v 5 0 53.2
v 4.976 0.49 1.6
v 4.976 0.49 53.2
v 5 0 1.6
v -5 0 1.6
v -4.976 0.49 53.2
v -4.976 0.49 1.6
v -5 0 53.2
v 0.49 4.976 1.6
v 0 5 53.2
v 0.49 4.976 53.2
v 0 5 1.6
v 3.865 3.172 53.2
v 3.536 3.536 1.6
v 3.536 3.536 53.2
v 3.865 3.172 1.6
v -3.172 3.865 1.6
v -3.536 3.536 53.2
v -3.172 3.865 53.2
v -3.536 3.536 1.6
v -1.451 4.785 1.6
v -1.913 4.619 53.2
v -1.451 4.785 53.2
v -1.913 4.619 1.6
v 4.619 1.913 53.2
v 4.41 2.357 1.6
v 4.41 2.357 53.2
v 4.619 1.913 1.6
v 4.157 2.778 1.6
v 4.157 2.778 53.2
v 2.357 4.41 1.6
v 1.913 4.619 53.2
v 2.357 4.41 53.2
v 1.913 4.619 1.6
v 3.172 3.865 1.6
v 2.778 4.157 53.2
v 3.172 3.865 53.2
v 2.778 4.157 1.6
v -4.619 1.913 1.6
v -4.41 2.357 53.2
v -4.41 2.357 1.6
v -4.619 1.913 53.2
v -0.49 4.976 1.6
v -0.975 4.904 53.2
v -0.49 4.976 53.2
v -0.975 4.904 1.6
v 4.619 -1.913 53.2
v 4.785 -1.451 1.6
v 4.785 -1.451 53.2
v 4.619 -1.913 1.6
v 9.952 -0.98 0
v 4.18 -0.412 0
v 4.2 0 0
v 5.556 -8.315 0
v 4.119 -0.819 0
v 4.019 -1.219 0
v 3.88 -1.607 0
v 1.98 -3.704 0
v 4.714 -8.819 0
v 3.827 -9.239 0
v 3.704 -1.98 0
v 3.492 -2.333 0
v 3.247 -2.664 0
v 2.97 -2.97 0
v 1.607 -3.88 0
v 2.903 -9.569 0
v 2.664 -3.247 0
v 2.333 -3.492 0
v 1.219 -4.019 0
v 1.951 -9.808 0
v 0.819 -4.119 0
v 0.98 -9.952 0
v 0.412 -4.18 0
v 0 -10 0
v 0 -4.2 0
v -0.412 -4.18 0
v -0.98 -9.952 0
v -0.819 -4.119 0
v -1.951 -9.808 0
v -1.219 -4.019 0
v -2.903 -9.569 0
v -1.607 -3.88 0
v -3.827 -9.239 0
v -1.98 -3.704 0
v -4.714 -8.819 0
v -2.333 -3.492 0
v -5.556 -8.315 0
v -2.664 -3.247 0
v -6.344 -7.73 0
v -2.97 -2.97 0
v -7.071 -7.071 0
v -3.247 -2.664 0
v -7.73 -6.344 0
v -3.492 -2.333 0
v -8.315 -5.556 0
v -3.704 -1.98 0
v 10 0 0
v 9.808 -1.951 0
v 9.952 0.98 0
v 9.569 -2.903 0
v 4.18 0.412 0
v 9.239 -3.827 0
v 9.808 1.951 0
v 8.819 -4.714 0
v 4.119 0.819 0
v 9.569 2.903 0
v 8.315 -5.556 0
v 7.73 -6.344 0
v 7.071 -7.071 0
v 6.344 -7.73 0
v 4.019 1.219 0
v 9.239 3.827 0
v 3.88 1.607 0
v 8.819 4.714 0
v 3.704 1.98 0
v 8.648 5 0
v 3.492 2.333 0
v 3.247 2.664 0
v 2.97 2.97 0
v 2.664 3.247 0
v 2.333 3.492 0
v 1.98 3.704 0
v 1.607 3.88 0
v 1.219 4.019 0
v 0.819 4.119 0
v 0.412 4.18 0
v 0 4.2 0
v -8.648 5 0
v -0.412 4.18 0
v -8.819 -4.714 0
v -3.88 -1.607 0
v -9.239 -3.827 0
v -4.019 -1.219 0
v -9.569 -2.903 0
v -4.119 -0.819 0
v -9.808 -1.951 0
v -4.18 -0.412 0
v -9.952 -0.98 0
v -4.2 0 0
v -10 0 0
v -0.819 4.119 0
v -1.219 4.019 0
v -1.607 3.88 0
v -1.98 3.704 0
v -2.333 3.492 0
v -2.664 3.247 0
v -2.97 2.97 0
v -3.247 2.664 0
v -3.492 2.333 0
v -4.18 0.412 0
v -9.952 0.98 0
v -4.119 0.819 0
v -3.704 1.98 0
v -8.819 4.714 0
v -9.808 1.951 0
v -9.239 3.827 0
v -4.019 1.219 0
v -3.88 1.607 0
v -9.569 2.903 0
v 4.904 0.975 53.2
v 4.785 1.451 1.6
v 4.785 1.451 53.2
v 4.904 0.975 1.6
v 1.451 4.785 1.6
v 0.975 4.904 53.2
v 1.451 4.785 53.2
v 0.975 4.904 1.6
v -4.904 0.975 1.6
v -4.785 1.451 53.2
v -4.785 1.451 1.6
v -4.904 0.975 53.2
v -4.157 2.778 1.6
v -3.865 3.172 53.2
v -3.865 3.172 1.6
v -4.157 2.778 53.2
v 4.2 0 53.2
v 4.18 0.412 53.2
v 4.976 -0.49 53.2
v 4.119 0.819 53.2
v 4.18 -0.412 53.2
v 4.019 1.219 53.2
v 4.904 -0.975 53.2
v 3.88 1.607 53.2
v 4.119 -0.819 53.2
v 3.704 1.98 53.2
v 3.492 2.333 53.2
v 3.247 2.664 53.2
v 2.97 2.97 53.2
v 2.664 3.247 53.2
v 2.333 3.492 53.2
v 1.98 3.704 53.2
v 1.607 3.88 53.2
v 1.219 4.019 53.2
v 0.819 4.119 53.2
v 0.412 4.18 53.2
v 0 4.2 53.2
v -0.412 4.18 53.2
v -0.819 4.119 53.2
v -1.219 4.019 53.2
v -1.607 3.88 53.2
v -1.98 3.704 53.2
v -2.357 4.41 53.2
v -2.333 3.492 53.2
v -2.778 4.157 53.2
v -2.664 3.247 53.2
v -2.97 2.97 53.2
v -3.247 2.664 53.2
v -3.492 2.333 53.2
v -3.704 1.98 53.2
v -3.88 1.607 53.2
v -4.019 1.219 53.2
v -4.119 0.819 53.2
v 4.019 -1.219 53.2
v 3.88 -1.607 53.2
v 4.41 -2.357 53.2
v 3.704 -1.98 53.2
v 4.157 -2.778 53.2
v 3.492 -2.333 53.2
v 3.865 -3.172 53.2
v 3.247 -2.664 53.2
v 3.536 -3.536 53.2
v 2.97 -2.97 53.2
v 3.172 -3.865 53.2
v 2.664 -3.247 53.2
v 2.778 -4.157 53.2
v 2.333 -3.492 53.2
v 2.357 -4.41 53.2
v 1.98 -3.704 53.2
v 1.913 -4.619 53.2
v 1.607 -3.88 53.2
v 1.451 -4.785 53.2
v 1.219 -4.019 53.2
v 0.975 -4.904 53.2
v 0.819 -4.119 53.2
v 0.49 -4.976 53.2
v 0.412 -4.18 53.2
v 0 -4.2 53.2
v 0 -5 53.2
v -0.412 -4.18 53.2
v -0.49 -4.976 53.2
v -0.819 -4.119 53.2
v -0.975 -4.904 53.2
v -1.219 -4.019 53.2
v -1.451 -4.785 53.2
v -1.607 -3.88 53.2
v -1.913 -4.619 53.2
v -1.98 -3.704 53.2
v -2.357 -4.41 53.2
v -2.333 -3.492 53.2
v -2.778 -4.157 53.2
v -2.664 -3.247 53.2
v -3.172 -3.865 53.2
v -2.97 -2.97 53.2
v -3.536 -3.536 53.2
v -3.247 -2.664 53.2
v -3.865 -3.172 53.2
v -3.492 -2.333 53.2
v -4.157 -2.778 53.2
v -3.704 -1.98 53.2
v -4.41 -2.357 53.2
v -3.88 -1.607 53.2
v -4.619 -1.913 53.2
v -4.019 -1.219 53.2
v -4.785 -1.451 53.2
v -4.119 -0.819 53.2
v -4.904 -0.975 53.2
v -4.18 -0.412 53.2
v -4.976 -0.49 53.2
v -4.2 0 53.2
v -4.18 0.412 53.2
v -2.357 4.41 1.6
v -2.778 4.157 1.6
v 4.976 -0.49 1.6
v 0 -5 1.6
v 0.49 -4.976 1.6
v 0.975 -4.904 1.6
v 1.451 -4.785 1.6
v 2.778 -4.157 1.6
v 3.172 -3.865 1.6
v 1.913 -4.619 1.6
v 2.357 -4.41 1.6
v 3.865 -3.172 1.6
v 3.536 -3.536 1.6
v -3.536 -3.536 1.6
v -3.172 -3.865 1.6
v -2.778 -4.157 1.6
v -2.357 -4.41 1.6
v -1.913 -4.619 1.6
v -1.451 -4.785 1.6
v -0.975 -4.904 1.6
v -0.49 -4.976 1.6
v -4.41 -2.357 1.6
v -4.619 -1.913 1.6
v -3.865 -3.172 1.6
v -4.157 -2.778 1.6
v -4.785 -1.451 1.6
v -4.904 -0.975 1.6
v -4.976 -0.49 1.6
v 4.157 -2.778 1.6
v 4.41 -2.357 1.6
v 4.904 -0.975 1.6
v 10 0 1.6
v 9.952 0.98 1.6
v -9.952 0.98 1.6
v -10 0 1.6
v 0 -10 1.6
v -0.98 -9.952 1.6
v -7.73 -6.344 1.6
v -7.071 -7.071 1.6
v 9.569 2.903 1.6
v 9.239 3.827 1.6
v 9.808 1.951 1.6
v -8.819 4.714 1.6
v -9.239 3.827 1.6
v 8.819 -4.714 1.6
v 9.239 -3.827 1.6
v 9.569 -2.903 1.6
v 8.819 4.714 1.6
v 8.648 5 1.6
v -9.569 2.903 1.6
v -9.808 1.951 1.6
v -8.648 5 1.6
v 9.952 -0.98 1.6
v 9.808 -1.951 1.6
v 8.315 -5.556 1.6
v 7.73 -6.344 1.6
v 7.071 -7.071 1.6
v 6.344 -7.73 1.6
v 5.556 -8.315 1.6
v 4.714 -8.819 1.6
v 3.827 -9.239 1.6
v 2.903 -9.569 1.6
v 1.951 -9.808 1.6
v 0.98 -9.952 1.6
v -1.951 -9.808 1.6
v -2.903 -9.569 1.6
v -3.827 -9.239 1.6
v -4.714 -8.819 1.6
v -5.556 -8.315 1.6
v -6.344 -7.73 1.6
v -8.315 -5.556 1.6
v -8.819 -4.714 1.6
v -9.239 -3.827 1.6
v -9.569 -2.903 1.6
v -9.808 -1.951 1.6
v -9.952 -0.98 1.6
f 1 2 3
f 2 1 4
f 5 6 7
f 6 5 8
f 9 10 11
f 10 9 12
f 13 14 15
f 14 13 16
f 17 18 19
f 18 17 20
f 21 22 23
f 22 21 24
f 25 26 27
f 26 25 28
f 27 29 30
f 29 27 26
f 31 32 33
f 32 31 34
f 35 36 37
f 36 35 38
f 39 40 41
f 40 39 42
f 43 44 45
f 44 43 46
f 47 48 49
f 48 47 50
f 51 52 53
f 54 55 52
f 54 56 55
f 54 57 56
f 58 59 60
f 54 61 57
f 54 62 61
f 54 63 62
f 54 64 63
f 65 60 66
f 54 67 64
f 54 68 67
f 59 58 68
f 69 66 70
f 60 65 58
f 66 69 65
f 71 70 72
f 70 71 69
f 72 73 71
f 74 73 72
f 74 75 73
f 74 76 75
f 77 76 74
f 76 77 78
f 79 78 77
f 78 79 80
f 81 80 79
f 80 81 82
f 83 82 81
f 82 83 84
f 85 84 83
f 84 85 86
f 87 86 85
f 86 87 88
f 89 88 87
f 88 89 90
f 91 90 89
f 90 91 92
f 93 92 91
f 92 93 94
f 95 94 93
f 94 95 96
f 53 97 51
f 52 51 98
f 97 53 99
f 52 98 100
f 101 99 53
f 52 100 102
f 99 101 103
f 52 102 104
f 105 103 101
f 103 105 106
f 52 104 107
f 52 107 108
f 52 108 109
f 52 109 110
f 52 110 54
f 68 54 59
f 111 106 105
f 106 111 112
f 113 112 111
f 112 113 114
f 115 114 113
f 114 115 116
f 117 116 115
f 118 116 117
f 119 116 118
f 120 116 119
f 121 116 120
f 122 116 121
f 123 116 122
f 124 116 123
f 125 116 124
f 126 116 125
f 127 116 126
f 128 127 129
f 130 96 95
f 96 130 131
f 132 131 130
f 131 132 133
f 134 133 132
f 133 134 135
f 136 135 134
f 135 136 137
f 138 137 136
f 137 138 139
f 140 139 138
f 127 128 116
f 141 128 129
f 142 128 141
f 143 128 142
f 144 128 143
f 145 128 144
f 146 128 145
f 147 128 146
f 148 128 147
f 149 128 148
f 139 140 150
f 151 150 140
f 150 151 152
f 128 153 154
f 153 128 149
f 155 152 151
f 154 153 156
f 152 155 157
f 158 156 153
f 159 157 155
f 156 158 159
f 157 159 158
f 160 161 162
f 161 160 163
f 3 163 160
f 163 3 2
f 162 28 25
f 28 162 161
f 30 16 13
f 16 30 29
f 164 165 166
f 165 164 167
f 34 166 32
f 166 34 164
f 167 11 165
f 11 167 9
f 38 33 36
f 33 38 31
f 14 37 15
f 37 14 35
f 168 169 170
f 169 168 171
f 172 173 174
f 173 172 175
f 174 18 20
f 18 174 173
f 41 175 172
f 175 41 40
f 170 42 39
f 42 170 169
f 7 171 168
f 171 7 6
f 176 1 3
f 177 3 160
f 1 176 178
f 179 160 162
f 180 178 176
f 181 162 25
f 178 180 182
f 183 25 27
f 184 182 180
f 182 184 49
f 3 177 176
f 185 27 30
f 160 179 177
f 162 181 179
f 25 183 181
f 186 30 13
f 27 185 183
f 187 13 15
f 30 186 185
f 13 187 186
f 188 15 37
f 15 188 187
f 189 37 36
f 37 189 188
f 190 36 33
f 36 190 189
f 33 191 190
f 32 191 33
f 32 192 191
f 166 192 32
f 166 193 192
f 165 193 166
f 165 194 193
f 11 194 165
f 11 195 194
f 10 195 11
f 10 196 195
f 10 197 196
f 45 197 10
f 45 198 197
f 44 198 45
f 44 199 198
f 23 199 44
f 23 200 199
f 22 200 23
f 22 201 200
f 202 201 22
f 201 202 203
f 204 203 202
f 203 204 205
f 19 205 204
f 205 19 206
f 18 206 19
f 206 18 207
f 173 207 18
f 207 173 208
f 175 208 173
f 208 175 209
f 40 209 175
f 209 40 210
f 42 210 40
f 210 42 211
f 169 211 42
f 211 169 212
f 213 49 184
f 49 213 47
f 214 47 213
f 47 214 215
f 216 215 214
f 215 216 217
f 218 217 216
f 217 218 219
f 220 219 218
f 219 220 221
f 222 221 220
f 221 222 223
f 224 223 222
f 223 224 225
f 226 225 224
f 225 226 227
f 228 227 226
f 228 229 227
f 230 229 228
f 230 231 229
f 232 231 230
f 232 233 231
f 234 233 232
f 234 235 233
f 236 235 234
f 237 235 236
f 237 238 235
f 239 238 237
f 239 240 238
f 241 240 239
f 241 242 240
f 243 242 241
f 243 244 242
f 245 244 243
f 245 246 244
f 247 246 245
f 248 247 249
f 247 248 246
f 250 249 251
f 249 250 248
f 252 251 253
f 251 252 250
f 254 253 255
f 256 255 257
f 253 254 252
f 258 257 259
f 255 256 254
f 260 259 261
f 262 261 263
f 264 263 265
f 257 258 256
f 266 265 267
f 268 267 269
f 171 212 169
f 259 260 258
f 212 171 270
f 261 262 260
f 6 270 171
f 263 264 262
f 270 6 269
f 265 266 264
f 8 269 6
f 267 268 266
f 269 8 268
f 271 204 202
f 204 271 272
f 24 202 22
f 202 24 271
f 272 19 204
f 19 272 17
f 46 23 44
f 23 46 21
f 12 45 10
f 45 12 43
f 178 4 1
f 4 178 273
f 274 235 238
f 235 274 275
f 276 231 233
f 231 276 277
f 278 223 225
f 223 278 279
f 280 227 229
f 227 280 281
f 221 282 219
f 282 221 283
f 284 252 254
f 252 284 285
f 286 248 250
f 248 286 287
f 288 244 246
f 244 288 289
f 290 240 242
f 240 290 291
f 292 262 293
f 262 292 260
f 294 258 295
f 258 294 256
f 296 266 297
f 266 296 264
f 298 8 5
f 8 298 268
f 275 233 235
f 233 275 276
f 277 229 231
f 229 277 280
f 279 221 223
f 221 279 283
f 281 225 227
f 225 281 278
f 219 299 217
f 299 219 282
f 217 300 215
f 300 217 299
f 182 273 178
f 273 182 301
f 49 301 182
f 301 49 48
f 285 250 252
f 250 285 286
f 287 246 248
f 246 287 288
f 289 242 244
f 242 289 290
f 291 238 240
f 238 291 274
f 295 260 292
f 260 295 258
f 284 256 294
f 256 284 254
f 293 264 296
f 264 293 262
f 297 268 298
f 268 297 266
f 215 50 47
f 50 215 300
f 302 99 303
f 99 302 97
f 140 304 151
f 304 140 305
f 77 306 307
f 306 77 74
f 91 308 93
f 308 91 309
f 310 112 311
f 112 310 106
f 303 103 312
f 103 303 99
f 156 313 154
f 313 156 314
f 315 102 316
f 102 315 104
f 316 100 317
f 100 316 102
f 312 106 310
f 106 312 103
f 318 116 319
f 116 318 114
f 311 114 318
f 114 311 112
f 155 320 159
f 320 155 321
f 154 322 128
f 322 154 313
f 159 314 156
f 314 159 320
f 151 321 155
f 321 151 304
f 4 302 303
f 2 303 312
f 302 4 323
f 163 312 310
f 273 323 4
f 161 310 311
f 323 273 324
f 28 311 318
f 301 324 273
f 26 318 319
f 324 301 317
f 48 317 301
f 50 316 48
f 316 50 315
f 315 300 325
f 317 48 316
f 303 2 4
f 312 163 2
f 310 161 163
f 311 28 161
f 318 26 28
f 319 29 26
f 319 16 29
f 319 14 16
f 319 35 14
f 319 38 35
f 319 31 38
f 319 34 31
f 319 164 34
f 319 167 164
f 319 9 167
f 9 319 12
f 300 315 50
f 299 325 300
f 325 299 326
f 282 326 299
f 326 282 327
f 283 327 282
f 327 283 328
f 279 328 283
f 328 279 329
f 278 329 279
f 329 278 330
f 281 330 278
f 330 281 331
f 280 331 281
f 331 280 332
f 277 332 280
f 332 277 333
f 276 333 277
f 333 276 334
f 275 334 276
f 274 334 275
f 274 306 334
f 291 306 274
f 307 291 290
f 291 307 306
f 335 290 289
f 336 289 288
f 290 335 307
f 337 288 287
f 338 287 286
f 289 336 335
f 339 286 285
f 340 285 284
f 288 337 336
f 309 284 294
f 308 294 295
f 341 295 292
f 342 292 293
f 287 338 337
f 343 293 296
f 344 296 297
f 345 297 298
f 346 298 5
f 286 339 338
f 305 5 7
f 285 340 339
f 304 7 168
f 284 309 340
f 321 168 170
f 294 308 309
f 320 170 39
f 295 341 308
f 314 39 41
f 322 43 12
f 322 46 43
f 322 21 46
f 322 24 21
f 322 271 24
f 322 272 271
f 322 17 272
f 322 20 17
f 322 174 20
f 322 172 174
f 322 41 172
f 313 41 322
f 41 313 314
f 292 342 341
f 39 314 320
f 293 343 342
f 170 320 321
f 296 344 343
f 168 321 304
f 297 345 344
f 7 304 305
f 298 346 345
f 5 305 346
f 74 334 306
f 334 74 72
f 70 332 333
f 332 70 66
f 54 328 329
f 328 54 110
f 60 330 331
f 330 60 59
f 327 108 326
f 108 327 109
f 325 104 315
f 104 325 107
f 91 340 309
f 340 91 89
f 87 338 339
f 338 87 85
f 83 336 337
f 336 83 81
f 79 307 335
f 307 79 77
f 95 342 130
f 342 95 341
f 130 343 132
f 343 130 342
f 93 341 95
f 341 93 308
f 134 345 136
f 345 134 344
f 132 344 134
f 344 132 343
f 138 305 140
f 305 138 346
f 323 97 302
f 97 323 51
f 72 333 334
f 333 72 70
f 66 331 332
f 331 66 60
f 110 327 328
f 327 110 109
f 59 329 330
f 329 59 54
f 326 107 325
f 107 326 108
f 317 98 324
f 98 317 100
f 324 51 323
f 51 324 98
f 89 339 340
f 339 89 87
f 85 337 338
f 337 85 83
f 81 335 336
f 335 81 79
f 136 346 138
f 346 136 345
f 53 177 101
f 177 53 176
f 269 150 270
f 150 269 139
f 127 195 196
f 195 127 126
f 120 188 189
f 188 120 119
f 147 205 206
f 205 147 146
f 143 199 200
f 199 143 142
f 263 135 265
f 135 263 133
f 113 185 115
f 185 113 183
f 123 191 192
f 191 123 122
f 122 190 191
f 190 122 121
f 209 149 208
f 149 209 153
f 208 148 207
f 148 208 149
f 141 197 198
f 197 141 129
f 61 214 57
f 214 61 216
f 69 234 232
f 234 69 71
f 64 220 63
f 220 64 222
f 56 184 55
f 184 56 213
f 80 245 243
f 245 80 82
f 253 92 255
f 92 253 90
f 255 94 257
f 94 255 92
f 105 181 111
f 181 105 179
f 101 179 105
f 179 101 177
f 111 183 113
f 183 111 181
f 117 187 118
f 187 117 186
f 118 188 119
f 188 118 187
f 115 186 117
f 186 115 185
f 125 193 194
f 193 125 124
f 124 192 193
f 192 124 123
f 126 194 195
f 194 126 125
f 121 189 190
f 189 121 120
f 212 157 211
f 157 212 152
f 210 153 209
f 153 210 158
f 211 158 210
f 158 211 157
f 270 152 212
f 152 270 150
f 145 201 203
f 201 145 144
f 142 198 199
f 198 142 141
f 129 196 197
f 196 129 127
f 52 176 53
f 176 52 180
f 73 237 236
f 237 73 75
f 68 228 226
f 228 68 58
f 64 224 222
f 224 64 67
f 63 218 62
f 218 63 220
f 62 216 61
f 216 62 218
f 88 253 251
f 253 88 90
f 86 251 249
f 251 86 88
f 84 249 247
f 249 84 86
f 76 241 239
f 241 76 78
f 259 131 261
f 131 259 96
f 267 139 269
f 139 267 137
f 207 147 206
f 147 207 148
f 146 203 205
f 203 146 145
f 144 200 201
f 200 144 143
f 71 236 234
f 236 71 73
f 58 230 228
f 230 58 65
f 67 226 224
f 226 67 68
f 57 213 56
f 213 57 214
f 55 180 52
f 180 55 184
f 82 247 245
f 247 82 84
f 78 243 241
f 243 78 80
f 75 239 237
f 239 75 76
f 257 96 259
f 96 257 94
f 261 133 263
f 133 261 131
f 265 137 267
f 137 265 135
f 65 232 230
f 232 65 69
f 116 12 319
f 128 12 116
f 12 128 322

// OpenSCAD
materialThickness = 1.6;
cutMaterialThickness = 0.8;
cutRadius = 5;
latchAdditionalRadius = 5;
cutZ = 50 + 2*materialThickness;

// Cut through ikea LACK for raspi cables
module cableHole() {
    difference() {
        union() {
            // Base cylinder
            translate([
                0,
                0,
                cutZ / 2
            ]) cylinder(
                h=cutZ,
                r=cutRadius,
                $fn=64,
                center = true
            );
            // latch
            translate([
                0,
                0,
                materialThickness / 2
            ]) cylinder(
                h=materialThickness,
                r=cutRadius + latchAdditionalRadius,
                $fn=64,
                center = true
            );
        }
        // remove hole
        translate([
            0,
            0,
            cutZ / 2
        ]) cylinder(
            h=cutZ,
            r=cutRadius - cutMaterialThickness,
            $fn=64,
            center = true
        );
        // remove part of latch on one side
        translate([
            - (cutRadius + latchAdditionalRadius),
            cutRadius,
            0
        ]) cube([
            2 * (cutRadius + latchAdditionalRadius),
            latchAdditionalRadius,
            materialThickness
        ]);
    };
}

cableHole();
